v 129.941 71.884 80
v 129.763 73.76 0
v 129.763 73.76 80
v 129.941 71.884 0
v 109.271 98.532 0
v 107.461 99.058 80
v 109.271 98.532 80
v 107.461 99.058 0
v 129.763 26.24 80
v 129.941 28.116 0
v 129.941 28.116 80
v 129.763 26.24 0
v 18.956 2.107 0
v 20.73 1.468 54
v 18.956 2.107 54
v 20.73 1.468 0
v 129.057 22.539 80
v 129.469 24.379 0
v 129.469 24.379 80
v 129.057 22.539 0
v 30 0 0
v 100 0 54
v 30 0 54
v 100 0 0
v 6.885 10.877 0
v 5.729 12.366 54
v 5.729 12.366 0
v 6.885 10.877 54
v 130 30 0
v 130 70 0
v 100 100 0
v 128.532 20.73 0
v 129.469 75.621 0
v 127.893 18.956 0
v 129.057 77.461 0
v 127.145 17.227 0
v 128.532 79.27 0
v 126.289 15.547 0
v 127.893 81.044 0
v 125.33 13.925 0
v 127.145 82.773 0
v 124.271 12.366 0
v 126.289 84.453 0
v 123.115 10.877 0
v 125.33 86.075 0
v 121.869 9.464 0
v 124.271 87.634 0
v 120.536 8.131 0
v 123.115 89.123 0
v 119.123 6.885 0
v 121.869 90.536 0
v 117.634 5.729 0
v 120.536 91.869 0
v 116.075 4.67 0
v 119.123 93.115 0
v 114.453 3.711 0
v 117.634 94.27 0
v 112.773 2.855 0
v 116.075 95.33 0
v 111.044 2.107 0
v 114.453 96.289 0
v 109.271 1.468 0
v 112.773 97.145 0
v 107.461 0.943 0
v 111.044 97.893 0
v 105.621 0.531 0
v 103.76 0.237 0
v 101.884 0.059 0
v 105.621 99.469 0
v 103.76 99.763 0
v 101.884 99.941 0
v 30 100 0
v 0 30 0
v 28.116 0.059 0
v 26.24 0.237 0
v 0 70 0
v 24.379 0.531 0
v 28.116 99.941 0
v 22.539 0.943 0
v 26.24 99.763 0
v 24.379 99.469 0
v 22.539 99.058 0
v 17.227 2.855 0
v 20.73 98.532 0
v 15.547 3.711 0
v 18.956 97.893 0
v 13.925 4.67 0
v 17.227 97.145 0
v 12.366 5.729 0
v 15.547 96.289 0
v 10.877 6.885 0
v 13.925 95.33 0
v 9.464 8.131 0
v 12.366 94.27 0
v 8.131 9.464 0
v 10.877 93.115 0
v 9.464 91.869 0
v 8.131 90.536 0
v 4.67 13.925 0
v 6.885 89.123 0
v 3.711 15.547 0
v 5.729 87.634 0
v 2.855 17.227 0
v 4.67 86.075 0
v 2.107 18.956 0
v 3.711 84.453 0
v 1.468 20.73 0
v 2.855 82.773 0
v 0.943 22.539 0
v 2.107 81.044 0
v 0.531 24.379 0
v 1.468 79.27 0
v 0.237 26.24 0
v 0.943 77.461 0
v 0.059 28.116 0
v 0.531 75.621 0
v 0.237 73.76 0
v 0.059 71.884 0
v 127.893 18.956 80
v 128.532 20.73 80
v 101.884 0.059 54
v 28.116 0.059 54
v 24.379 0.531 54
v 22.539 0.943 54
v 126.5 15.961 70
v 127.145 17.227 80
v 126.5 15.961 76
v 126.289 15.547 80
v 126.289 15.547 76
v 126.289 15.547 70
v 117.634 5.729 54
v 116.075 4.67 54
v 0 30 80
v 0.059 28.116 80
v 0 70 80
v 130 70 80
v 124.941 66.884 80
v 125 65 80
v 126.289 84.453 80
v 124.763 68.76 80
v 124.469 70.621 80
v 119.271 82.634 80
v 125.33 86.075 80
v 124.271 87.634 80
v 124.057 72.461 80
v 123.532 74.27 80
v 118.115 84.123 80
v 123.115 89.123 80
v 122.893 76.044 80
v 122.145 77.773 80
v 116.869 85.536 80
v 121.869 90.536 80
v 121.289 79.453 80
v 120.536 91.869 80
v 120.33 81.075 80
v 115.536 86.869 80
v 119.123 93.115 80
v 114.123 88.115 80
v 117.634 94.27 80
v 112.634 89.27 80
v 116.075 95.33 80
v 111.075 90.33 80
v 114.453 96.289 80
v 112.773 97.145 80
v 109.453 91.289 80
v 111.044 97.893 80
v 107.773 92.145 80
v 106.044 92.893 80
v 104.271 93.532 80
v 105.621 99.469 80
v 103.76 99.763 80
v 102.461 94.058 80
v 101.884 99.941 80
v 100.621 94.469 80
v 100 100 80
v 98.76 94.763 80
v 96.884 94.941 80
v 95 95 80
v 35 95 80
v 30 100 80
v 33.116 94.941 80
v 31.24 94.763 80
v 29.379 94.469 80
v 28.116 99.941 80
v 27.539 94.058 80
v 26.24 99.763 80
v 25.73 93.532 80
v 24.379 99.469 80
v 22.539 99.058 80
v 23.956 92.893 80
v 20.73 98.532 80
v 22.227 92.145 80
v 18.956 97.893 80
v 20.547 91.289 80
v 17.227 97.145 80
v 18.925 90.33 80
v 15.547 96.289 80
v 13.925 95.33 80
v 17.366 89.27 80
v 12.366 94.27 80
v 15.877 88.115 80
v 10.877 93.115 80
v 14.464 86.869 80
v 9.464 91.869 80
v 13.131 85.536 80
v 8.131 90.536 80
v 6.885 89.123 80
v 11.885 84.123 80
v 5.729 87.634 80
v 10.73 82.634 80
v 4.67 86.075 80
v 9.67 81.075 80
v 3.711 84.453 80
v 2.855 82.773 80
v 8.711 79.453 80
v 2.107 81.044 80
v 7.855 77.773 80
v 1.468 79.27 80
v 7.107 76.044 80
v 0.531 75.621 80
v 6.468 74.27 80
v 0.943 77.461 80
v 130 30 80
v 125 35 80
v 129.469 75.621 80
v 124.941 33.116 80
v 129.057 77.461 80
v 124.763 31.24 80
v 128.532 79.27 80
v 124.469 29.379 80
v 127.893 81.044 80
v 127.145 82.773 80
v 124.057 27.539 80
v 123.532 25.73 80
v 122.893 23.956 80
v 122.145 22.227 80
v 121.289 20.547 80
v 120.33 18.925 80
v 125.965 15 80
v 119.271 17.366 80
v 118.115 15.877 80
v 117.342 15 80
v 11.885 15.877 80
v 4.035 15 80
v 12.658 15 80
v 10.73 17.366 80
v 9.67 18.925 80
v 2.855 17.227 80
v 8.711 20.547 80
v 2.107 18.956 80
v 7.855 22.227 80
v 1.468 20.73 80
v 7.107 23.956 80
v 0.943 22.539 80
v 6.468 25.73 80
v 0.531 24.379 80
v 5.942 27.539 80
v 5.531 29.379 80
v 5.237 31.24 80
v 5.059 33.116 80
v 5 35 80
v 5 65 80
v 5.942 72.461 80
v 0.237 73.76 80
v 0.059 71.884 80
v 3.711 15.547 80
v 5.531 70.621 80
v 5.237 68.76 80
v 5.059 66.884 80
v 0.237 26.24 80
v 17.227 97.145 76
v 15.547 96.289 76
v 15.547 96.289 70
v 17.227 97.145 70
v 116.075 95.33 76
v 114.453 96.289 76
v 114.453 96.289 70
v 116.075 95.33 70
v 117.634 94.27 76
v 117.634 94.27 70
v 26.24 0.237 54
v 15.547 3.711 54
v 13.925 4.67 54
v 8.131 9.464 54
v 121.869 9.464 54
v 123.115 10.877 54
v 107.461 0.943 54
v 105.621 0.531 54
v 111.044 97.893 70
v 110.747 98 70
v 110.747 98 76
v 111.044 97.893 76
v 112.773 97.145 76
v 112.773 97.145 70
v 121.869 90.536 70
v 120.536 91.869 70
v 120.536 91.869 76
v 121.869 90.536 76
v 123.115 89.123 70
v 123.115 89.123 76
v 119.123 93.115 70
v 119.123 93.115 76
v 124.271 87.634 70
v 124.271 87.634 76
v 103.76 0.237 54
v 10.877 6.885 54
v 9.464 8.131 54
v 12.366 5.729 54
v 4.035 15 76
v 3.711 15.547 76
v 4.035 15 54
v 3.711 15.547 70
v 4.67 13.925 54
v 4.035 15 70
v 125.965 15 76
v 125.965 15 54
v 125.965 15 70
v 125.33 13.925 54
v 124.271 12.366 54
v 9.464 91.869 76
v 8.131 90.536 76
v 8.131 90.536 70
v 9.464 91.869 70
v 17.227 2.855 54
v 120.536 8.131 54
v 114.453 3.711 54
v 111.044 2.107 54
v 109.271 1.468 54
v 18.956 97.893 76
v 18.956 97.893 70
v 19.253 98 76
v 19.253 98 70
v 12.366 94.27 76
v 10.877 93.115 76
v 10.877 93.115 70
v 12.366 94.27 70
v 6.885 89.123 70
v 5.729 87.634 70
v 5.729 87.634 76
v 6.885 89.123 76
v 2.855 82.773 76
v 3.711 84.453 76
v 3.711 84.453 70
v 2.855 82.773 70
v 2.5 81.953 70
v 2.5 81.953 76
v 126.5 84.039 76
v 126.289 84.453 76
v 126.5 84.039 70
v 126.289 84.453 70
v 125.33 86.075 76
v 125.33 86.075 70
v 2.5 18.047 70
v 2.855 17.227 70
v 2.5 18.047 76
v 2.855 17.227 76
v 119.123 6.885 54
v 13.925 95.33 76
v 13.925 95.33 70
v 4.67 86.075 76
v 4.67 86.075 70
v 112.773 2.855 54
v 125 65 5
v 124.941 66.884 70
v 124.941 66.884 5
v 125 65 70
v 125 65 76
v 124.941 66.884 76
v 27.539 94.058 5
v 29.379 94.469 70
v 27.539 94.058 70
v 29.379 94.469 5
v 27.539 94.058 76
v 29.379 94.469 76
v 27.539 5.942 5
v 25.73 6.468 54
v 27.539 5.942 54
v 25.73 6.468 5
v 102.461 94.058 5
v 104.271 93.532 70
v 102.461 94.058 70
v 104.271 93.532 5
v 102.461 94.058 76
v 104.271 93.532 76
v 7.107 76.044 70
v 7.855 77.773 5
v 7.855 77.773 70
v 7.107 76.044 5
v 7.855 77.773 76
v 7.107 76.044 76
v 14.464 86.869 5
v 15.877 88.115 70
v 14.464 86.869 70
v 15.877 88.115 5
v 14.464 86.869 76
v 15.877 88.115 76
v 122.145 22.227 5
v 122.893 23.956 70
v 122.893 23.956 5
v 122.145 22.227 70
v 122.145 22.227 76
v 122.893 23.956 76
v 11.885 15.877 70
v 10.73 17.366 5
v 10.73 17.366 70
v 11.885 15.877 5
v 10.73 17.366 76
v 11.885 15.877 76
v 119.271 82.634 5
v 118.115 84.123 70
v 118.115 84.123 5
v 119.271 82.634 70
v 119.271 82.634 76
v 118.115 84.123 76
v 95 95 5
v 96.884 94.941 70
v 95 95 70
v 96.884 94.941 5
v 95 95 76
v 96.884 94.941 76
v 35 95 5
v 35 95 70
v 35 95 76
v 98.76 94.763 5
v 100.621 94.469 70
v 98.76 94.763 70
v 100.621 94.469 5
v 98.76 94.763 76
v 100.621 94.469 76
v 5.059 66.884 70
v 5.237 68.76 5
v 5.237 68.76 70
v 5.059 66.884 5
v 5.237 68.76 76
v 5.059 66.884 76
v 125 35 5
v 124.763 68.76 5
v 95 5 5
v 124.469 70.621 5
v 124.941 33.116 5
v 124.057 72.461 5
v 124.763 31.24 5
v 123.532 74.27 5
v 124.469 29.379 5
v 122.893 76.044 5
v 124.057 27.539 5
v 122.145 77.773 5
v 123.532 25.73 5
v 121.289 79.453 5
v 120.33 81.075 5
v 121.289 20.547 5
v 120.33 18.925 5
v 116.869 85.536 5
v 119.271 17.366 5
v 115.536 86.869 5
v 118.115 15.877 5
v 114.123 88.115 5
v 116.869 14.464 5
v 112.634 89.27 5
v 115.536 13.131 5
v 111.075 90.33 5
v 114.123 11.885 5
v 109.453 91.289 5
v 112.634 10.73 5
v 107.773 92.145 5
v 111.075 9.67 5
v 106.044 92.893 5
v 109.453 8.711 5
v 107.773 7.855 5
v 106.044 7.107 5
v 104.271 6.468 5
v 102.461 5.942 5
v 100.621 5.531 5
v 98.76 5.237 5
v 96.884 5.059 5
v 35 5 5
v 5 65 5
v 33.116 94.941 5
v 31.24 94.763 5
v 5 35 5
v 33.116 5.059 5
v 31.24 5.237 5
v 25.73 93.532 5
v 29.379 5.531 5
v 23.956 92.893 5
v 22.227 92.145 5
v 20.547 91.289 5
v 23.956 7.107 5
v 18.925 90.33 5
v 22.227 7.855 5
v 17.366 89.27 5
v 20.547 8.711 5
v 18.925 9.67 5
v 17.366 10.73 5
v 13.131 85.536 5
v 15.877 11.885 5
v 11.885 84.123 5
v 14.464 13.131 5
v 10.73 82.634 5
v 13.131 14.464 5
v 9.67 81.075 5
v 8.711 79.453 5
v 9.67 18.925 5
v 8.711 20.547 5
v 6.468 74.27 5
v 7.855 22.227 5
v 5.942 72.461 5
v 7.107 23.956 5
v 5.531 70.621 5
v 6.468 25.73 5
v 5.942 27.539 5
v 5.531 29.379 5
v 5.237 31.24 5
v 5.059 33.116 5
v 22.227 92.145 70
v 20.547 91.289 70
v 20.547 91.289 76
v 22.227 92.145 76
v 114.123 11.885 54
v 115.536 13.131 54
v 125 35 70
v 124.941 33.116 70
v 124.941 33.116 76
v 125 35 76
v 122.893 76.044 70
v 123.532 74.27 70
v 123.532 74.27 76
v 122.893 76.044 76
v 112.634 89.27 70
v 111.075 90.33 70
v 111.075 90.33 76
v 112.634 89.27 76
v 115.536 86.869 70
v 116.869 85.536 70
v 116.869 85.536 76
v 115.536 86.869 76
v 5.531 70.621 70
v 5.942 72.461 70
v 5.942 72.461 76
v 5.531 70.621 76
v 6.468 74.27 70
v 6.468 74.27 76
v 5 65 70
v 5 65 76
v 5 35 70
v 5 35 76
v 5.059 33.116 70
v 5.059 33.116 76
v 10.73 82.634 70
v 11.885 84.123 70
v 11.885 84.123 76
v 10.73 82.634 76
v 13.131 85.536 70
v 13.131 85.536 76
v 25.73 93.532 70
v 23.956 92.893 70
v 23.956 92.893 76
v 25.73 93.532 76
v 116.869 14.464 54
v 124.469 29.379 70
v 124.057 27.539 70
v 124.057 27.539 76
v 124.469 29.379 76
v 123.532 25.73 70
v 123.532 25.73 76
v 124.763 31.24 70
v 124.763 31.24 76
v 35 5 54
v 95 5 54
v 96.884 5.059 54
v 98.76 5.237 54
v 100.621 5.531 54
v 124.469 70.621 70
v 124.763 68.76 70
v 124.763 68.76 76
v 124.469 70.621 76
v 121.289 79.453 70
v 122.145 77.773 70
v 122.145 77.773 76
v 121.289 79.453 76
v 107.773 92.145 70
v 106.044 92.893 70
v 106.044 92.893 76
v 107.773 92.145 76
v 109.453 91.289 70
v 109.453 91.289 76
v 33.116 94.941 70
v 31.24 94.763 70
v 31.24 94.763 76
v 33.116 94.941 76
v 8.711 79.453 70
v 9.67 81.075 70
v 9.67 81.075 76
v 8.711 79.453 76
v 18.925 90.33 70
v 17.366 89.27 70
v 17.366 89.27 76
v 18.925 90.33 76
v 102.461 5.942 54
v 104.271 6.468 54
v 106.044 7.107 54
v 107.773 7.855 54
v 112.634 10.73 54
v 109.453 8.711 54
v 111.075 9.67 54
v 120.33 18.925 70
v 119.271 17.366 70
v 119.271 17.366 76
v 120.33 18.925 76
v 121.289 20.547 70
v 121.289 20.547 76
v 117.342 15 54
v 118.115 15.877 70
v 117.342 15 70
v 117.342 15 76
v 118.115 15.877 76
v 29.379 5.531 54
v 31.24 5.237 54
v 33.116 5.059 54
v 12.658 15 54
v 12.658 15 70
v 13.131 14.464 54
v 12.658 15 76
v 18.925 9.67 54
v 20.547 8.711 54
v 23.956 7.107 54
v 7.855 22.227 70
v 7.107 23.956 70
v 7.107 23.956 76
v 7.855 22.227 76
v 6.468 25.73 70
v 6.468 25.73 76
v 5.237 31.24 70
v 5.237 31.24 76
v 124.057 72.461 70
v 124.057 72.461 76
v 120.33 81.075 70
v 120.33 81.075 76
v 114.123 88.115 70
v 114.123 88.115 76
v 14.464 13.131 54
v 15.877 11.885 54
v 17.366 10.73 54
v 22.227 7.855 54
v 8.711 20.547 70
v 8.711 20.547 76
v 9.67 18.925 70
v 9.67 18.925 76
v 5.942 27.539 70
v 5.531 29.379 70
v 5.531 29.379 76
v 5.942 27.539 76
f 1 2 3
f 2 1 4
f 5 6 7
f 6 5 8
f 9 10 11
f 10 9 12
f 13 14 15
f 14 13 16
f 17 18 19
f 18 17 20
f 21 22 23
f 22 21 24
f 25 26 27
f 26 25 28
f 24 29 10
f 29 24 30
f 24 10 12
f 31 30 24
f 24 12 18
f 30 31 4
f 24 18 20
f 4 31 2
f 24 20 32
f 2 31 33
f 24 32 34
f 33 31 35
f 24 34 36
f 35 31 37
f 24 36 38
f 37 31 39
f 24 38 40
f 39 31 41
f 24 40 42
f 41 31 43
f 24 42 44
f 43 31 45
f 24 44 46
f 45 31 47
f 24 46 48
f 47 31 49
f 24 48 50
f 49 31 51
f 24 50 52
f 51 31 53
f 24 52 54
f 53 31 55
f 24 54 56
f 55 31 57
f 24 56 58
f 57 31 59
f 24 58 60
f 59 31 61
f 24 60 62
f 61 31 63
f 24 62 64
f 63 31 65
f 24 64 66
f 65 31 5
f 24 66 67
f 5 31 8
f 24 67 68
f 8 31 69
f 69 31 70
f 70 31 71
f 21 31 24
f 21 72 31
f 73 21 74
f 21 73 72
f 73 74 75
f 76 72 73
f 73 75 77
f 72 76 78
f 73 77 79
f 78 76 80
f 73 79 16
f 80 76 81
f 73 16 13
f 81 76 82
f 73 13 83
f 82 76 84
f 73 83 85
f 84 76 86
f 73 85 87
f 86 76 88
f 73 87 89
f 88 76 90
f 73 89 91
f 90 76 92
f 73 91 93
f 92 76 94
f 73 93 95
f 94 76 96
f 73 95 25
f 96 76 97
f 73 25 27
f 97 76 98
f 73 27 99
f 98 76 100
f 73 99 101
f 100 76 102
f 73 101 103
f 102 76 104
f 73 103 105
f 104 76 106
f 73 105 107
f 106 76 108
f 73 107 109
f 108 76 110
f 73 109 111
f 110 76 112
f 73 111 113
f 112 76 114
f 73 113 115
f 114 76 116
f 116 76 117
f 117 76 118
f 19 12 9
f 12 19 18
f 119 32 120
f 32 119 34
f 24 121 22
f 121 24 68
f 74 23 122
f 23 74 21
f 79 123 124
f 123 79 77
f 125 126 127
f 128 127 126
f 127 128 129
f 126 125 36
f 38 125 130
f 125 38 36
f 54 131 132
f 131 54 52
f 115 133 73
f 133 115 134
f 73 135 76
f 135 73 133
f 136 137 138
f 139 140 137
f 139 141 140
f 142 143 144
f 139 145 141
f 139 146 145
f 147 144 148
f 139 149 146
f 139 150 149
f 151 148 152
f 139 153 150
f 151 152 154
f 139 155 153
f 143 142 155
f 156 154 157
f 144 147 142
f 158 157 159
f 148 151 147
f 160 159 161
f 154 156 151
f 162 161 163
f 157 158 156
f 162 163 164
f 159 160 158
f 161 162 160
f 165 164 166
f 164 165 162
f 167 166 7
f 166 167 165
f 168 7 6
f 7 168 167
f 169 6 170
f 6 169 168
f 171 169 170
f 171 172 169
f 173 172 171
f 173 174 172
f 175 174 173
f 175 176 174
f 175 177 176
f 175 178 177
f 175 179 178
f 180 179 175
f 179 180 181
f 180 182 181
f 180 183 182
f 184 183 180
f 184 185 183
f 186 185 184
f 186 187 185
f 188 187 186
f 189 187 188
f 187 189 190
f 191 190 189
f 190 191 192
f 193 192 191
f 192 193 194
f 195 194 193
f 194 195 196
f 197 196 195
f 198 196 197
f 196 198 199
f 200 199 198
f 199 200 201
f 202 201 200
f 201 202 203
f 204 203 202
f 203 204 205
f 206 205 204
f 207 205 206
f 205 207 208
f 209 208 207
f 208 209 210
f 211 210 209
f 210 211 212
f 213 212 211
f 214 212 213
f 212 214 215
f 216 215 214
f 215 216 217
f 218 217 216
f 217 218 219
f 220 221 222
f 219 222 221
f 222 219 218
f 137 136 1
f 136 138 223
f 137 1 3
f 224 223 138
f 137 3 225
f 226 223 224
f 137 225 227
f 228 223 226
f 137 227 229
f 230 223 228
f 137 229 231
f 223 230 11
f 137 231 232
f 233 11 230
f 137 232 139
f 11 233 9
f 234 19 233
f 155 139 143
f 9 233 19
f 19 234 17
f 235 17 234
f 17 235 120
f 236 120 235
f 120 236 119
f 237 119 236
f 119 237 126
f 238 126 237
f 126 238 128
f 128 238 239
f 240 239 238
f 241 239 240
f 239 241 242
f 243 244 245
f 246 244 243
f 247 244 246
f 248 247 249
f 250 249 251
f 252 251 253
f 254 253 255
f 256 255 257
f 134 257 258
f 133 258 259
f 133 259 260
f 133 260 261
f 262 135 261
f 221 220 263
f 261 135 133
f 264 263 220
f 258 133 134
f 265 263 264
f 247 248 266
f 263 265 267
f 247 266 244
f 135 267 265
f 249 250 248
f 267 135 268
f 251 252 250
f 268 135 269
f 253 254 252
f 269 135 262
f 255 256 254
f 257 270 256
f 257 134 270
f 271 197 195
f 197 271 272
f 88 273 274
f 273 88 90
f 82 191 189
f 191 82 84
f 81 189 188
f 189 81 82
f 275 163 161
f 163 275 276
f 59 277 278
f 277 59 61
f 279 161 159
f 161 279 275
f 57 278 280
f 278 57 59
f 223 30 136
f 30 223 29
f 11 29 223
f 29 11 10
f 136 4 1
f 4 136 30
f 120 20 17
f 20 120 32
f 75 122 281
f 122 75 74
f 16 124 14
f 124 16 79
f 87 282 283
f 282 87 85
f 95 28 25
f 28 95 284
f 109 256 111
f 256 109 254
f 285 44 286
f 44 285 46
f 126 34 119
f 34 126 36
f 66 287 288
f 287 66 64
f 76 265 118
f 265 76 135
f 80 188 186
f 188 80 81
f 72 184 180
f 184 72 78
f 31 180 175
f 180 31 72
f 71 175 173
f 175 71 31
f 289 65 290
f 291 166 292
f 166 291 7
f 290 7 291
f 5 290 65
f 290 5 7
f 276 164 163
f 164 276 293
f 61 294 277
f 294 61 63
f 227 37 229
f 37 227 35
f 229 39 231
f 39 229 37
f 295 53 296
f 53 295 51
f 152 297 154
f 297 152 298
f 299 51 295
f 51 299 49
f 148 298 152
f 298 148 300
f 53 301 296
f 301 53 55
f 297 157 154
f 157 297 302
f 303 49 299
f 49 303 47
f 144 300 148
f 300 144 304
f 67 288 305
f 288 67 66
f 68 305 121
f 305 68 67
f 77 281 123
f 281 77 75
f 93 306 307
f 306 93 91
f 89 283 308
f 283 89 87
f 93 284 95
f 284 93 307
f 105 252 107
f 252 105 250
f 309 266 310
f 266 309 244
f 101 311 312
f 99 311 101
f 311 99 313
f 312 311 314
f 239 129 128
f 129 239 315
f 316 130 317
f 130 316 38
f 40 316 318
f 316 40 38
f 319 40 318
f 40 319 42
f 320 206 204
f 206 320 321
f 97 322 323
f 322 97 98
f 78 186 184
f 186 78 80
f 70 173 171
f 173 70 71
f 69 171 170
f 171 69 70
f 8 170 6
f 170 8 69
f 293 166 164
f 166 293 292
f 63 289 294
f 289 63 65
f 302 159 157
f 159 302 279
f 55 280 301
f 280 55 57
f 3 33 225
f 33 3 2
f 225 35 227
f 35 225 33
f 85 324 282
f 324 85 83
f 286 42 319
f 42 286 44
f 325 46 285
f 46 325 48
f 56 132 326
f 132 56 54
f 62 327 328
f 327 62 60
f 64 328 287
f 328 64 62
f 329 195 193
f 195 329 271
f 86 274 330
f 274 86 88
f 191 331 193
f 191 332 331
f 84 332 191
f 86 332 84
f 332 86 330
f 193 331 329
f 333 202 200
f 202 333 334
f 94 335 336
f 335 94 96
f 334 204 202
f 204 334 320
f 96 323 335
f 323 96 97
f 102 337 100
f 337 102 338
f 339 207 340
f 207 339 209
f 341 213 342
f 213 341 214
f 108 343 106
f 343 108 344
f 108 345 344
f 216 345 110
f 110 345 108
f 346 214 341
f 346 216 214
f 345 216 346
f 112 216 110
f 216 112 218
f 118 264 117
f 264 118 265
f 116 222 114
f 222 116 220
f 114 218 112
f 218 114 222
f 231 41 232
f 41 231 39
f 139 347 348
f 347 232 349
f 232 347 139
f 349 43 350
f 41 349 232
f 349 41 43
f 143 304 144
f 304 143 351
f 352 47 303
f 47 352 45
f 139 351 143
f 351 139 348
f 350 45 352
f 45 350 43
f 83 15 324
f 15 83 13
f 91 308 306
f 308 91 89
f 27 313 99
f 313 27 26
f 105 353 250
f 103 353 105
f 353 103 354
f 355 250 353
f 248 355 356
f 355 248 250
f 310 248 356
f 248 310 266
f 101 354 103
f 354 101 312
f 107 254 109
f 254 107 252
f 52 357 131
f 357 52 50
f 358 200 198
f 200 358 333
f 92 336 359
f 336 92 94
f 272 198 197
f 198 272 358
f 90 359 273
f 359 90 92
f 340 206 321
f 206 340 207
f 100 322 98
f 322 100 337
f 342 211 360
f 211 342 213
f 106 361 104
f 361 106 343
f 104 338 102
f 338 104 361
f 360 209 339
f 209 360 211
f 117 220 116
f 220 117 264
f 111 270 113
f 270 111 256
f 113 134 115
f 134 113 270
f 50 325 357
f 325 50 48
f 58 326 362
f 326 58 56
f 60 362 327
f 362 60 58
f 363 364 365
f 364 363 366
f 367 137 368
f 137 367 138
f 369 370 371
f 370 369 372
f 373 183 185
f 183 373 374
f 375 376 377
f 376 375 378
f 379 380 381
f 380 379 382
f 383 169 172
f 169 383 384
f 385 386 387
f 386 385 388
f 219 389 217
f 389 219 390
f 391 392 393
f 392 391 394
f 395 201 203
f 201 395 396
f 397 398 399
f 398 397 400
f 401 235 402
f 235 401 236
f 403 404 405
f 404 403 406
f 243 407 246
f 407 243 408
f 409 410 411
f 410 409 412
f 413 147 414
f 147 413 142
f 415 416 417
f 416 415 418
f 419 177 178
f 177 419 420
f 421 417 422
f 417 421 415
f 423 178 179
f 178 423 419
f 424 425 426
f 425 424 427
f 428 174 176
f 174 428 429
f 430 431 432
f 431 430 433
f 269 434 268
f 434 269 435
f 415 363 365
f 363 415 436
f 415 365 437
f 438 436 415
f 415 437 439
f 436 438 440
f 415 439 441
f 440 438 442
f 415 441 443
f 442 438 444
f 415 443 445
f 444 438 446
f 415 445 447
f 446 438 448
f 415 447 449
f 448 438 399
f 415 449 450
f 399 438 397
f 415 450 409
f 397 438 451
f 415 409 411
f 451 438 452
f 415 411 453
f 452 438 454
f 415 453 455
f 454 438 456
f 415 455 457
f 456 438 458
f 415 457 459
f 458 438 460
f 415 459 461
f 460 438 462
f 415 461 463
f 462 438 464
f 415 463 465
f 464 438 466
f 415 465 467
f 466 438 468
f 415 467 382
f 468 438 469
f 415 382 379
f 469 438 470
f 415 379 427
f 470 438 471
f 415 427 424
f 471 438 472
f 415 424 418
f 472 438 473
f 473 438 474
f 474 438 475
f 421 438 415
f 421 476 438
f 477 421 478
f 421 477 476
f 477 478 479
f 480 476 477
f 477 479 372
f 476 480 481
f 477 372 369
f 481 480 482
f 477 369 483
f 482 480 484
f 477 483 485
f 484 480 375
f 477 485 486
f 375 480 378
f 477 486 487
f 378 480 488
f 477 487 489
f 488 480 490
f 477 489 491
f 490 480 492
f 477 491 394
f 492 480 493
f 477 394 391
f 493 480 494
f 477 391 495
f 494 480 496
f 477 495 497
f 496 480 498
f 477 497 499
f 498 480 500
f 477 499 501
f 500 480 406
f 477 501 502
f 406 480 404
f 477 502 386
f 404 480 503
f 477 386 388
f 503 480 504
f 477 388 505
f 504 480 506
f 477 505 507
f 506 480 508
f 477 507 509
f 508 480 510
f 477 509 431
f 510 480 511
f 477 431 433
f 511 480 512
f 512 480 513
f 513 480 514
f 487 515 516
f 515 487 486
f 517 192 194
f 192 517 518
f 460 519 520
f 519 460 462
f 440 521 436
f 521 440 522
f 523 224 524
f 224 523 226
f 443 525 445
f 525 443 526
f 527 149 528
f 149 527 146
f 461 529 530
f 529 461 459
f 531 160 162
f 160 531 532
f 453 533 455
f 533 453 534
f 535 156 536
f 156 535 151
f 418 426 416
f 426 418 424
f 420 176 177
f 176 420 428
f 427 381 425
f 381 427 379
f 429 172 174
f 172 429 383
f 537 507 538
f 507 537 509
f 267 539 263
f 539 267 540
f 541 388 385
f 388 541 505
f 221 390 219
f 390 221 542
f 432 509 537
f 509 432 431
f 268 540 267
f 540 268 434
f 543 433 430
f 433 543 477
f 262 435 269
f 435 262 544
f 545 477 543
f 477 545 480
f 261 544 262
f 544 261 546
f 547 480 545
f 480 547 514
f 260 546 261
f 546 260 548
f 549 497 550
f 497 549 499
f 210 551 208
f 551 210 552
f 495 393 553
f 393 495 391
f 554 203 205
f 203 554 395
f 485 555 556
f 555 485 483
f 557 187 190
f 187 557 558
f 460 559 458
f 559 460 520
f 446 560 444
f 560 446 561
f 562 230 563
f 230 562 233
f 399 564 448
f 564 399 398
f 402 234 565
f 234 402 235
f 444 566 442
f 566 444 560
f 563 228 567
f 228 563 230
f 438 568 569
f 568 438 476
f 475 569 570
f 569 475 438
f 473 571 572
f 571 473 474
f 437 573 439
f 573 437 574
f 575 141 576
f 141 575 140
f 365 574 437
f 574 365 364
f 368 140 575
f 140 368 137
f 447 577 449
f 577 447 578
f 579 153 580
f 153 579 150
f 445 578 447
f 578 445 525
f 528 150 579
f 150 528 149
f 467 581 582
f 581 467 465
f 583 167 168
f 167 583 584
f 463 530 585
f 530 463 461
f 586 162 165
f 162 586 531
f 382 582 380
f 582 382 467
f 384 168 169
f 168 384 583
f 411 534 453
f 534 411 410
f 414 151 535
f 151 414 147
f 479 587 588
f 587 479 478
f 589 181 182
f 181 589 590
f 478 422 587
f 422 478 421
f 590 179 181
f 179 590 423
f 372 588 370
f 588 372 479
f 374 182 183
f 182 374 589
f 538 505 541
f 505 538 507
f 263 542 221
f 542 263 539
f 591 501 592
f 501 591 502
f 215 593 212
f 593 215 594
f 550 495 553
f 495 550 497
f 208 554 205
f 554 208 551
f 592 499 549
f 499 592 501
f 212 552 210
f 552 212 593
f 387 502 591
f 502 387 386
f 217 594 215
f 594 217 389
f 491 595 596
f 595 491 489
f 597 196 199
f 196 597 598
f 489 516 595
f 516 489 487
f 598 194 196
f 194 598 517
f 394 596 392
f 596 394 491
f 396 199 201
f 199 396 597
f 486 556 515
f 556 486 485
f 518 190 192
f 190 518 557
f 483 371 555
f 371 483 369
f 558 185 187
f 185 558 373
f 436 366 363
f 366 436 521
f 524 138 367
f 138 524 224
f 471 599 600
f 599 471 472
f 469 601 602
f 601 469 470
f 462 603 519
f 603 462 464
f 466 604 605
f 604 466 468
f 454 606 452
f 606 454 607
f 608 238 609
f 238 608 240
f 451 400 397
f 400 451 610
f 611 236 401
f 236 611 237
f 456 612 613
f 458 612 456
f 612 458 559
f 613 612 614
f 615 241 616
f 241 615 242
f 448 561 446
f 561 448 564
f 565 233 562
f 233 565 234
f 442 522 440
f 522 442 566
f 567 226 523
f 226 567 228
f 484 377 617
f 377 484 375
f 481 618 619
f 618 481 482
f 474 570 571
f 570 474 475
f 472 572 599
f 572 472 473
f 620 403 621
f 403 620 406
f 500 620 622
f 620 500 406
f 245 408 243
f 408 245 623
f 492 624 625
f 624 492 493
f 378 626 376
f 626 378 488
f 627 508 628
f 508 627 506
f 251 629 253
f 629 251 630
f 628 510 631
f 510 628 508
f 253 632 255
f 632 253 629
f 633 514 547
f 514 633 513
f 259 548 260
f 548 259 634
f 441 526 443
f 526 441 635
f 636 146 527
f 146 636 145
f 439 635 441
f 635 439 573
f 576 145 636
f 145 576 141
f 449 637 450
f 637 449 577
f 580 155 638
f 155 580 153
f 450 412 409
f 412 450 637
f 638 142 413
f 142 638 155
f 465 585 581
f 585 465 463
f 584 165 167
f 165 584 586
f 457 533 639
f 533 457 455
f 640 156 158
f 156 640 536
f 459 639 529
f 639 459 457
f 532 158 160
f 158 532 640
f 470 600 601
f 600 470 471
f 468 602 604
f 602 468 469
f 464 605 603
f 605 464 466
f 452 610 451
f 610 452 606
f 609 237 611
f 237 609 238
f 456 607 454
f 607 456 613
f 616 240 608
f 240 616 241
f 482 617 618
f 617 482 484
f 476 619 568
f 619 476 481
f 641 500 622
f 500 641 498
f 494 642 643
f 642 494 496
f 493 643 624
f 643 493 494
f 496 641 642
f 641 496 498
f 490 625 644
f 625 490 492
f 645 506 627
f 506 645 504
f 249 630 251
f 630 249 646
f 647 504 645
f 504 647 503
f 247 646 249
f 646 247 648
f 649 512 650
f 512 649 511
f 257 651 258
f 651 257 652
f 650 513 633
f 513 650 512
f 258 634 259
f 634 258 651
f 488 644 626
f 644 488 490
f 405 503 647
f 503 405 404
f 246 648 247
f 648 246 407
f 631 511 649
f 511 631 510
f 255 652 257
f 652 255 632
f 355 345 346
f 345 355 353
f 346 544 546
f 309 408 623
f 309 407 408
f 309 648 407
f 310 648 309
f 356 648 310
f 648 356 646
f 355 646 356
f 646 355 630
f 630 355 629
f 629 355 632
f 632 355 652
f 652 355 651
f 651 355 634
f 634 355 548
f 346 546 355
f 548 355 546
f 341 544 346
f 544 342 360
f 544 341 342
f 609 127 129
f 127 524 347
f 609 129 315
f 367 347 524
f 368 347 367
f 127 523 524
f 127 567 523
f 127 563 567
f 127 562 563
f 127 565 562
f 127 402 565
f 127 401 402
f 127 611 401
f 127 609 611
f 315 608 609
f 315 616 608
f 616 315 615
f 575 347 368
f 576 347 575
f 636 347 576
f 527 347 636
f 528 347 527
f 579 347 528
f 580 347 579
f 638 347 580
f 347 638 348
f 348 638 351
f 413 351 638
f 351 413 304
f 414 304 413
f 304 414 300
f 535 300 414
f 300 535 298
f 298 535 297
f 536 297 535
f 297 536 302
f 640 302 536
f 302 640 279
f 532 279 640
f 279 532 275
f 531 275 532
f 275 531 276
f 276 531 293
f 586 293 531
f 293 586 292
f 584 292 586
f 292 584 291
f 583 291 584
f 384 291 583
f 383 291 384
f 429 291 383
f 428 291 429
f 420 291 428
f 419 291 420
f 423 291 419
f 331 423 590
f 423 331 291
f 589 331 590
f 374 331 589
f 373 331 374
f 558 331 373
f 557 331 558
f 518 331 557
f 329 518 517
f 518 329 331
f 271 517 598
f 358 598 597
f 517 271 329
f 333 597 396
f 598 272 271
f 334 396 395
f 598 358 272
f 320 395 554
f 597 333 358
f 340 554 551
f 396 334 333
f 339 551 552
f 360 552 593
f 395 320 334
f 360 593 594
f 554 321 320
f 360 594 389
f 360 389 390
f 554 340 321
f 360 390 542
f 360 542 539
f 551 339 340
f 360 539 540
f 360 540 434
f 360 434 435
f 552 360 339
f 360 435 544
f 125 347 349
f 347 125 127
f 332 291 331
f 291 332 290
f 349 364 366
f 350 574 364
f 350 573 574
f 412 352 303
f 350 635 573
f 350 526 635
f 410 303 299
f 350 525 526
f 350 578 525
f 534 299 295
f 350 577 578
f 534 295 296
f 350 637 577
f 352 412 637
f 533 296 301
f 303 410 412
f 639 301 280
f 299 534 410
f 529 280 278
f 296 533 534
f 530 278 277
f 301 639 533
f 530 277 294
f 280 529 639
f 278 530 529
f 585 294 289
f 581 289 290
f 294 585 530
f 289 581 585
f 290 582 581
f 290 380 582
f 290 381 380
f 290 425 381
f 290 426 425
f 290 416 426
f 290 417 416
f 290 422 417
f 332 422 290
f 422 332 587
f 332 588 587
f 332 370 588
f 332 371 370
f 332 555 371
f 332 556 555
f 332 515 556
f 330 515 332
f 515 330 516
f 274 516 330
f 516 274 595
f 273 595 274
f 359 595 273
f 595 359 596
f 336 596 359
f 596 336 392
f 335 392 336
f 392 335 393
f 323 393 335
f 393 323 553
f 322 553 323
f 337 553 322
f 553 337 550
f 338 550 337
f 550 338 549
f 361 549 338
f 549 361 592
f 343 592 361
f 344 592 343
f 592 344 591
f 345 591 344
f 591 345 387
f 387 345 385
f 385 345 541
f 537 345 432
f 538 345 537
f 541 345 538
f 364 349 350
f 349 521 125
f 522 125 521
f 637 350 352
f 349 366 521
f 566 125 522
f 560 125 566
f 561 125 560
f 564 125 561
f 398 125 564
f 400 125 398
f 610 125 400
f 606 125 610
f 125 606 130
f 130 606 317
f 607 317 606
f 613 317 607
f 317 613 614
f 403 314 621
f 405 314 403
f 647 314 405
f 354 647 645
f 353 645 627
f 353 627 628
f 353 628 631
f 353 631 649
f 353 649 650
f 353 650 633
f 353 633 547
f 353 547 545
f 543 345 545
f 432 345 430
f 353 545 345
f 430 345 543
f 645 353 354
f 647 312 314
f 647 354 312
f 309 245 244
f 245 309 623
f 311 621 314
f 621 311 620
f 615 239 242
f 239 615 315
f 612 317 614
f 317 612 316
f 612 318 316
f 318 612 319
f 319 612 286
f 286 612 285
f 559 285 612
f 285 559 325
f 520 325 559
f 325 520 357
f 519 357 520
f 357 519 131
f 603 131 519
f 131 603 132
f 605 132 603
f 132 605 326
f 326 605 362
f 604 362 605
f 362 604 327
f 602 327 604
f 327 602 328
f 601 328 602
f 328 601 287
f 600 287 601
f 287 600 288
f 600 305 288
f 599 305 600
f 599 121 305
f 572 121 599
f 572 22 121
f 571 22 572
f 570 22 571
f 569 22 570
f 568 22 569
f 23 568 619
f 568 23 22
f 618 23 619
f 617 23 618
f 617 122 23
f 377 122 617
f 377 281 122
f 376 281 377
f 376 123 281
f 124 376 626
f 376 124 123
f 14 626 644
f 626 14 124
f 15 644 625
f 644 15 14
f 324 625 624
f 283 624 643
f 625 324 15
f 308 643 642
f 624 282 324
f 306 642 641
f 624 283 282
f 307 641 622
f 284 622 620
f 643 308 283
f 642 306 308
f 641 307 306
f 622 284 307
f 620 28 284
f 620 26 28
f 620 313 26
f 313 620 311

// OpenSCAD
/*
        ENAMEL PROJECT - MELANIE BALJKO
        MODELLING FOR VERSION 3
        CREATED BY: SHWETA DIXIT - 2017
        
        TITLE --- VERSION 3 - VARIANT 1 - OUTER ROUNDED BOX
        
        *******ATTEMPT ONE***********
        
        (Measurements in mm)
        
        
*/

$fn = 100;

////////////////// Variables ////////////////////////////

/// For Outer Cube
x_dim = 130;
y_dim = 100;
z_dim = 80;
r_dim = 30;

/// For Inner cube
x_in = x_dim - 10;
y_in = y_dim - 10;
z_in = z_dim +5;
r_in = r_dim;

// For middle slider layer
x_mid = x_in + 4;
y_mid = y_in + 8;
z_mid = 6; // height of middle slider layer 

// For bottom closing area
z_bottom = 30;

//---- For making holes for raspberry pi ---- ////

// For hole on the right side
x_side = 20;
y_side = 60;
z_side = 15;

// For hole at the back
x_back = 60;
y_back = 20;
z_back = 25;
    
    
    
/////////////// BUILDING MODEL //////////////////

//Modelling outer rounded cube
module outer_roundedcube(x_dim, y_dim, z_dim, r_dim)
hull(){
    translate([r_dim, r_dim, 0])
    {
        cylinder(r = r_dim, h = z_dim);
    }
    
    translate([x_dim - r_dim, r_dim, 0])
    {
        cylinder(r = r_dim, h = z_dim);
    }
    
    translate([r_dim, y_dim - r_dim, 0])
    {
        cylinder(r = r_dim, h = z_dim);
    }
    
    translate([x_dim - r_dim, y_dim - r_dim, 0])
    {
        cylinder(r = r_dim, h = z_dim);
    }
}
//outer_roundedcube(x_dim, y_dim, z_dim, r_dim);

//Modelling the inner rounded cube
module inner_roundedcube(x_in, y_in, z_in, r_in)
hull(){
    
    translate([5, 5, 5])
    {
        translate([r_in, r_in, 0])
        {
            cylinder(r = r_in, h = z_in);
        }
        
        translate([x_in - r_in, r_in, 0])
        {
            cylinder(r = r_in, h = z_in);
        }
        
        translate([r_in, y_in - r_in, 0])
        {
            cylinder(r = r_in, h = z_in);
        }
        
        translate([x_in - r_in, y_in - r_in, 0])
        {
            cylinder(r = r_in, h = z_in);
        }
    }
}
//inner_roundedcube(x_in, y_in, z_in, r_in);

//Make a hole in the outer cube
difference()
{
    outer_roundedcube(x_dim, y_dim, z_dim, r_dim);
    inner_roundedcube(x_in, y_in, z_in, r_in);
    
    /*// Cutting a hole for the slider to separate the layers
    translate([((x_mid - x_in)/2)+0.5, 0, (z_dim/2)])
        {
            cube([x_mid, y_mid, z_mid]);
        } */
        
    // Cutting a hole for the top lid
        translate([((x_mid - x_in)/2)+0.5, 0, z_dim - 10])
        {
            cube([x_mid, y_mid, z_mid]);
        }
        
    // Cutting a hole for bottom closing area for the top lid       
        translate([((x_in/4)- r_dim), 0, ((z_dim - (z_mid+20)))])
        {
            cube([x_mid+20, r_dim/2, (z_bottom)]);
        }
        
   // For the hole on the ride side
        /*translate([x_dim, ((y_in - y_dim) / 2), (z_in - z_dim)])
        {
            cube(x_side, y_side, z_side);
        } */
        
        
}

// Making holes for Raspberry Pi
